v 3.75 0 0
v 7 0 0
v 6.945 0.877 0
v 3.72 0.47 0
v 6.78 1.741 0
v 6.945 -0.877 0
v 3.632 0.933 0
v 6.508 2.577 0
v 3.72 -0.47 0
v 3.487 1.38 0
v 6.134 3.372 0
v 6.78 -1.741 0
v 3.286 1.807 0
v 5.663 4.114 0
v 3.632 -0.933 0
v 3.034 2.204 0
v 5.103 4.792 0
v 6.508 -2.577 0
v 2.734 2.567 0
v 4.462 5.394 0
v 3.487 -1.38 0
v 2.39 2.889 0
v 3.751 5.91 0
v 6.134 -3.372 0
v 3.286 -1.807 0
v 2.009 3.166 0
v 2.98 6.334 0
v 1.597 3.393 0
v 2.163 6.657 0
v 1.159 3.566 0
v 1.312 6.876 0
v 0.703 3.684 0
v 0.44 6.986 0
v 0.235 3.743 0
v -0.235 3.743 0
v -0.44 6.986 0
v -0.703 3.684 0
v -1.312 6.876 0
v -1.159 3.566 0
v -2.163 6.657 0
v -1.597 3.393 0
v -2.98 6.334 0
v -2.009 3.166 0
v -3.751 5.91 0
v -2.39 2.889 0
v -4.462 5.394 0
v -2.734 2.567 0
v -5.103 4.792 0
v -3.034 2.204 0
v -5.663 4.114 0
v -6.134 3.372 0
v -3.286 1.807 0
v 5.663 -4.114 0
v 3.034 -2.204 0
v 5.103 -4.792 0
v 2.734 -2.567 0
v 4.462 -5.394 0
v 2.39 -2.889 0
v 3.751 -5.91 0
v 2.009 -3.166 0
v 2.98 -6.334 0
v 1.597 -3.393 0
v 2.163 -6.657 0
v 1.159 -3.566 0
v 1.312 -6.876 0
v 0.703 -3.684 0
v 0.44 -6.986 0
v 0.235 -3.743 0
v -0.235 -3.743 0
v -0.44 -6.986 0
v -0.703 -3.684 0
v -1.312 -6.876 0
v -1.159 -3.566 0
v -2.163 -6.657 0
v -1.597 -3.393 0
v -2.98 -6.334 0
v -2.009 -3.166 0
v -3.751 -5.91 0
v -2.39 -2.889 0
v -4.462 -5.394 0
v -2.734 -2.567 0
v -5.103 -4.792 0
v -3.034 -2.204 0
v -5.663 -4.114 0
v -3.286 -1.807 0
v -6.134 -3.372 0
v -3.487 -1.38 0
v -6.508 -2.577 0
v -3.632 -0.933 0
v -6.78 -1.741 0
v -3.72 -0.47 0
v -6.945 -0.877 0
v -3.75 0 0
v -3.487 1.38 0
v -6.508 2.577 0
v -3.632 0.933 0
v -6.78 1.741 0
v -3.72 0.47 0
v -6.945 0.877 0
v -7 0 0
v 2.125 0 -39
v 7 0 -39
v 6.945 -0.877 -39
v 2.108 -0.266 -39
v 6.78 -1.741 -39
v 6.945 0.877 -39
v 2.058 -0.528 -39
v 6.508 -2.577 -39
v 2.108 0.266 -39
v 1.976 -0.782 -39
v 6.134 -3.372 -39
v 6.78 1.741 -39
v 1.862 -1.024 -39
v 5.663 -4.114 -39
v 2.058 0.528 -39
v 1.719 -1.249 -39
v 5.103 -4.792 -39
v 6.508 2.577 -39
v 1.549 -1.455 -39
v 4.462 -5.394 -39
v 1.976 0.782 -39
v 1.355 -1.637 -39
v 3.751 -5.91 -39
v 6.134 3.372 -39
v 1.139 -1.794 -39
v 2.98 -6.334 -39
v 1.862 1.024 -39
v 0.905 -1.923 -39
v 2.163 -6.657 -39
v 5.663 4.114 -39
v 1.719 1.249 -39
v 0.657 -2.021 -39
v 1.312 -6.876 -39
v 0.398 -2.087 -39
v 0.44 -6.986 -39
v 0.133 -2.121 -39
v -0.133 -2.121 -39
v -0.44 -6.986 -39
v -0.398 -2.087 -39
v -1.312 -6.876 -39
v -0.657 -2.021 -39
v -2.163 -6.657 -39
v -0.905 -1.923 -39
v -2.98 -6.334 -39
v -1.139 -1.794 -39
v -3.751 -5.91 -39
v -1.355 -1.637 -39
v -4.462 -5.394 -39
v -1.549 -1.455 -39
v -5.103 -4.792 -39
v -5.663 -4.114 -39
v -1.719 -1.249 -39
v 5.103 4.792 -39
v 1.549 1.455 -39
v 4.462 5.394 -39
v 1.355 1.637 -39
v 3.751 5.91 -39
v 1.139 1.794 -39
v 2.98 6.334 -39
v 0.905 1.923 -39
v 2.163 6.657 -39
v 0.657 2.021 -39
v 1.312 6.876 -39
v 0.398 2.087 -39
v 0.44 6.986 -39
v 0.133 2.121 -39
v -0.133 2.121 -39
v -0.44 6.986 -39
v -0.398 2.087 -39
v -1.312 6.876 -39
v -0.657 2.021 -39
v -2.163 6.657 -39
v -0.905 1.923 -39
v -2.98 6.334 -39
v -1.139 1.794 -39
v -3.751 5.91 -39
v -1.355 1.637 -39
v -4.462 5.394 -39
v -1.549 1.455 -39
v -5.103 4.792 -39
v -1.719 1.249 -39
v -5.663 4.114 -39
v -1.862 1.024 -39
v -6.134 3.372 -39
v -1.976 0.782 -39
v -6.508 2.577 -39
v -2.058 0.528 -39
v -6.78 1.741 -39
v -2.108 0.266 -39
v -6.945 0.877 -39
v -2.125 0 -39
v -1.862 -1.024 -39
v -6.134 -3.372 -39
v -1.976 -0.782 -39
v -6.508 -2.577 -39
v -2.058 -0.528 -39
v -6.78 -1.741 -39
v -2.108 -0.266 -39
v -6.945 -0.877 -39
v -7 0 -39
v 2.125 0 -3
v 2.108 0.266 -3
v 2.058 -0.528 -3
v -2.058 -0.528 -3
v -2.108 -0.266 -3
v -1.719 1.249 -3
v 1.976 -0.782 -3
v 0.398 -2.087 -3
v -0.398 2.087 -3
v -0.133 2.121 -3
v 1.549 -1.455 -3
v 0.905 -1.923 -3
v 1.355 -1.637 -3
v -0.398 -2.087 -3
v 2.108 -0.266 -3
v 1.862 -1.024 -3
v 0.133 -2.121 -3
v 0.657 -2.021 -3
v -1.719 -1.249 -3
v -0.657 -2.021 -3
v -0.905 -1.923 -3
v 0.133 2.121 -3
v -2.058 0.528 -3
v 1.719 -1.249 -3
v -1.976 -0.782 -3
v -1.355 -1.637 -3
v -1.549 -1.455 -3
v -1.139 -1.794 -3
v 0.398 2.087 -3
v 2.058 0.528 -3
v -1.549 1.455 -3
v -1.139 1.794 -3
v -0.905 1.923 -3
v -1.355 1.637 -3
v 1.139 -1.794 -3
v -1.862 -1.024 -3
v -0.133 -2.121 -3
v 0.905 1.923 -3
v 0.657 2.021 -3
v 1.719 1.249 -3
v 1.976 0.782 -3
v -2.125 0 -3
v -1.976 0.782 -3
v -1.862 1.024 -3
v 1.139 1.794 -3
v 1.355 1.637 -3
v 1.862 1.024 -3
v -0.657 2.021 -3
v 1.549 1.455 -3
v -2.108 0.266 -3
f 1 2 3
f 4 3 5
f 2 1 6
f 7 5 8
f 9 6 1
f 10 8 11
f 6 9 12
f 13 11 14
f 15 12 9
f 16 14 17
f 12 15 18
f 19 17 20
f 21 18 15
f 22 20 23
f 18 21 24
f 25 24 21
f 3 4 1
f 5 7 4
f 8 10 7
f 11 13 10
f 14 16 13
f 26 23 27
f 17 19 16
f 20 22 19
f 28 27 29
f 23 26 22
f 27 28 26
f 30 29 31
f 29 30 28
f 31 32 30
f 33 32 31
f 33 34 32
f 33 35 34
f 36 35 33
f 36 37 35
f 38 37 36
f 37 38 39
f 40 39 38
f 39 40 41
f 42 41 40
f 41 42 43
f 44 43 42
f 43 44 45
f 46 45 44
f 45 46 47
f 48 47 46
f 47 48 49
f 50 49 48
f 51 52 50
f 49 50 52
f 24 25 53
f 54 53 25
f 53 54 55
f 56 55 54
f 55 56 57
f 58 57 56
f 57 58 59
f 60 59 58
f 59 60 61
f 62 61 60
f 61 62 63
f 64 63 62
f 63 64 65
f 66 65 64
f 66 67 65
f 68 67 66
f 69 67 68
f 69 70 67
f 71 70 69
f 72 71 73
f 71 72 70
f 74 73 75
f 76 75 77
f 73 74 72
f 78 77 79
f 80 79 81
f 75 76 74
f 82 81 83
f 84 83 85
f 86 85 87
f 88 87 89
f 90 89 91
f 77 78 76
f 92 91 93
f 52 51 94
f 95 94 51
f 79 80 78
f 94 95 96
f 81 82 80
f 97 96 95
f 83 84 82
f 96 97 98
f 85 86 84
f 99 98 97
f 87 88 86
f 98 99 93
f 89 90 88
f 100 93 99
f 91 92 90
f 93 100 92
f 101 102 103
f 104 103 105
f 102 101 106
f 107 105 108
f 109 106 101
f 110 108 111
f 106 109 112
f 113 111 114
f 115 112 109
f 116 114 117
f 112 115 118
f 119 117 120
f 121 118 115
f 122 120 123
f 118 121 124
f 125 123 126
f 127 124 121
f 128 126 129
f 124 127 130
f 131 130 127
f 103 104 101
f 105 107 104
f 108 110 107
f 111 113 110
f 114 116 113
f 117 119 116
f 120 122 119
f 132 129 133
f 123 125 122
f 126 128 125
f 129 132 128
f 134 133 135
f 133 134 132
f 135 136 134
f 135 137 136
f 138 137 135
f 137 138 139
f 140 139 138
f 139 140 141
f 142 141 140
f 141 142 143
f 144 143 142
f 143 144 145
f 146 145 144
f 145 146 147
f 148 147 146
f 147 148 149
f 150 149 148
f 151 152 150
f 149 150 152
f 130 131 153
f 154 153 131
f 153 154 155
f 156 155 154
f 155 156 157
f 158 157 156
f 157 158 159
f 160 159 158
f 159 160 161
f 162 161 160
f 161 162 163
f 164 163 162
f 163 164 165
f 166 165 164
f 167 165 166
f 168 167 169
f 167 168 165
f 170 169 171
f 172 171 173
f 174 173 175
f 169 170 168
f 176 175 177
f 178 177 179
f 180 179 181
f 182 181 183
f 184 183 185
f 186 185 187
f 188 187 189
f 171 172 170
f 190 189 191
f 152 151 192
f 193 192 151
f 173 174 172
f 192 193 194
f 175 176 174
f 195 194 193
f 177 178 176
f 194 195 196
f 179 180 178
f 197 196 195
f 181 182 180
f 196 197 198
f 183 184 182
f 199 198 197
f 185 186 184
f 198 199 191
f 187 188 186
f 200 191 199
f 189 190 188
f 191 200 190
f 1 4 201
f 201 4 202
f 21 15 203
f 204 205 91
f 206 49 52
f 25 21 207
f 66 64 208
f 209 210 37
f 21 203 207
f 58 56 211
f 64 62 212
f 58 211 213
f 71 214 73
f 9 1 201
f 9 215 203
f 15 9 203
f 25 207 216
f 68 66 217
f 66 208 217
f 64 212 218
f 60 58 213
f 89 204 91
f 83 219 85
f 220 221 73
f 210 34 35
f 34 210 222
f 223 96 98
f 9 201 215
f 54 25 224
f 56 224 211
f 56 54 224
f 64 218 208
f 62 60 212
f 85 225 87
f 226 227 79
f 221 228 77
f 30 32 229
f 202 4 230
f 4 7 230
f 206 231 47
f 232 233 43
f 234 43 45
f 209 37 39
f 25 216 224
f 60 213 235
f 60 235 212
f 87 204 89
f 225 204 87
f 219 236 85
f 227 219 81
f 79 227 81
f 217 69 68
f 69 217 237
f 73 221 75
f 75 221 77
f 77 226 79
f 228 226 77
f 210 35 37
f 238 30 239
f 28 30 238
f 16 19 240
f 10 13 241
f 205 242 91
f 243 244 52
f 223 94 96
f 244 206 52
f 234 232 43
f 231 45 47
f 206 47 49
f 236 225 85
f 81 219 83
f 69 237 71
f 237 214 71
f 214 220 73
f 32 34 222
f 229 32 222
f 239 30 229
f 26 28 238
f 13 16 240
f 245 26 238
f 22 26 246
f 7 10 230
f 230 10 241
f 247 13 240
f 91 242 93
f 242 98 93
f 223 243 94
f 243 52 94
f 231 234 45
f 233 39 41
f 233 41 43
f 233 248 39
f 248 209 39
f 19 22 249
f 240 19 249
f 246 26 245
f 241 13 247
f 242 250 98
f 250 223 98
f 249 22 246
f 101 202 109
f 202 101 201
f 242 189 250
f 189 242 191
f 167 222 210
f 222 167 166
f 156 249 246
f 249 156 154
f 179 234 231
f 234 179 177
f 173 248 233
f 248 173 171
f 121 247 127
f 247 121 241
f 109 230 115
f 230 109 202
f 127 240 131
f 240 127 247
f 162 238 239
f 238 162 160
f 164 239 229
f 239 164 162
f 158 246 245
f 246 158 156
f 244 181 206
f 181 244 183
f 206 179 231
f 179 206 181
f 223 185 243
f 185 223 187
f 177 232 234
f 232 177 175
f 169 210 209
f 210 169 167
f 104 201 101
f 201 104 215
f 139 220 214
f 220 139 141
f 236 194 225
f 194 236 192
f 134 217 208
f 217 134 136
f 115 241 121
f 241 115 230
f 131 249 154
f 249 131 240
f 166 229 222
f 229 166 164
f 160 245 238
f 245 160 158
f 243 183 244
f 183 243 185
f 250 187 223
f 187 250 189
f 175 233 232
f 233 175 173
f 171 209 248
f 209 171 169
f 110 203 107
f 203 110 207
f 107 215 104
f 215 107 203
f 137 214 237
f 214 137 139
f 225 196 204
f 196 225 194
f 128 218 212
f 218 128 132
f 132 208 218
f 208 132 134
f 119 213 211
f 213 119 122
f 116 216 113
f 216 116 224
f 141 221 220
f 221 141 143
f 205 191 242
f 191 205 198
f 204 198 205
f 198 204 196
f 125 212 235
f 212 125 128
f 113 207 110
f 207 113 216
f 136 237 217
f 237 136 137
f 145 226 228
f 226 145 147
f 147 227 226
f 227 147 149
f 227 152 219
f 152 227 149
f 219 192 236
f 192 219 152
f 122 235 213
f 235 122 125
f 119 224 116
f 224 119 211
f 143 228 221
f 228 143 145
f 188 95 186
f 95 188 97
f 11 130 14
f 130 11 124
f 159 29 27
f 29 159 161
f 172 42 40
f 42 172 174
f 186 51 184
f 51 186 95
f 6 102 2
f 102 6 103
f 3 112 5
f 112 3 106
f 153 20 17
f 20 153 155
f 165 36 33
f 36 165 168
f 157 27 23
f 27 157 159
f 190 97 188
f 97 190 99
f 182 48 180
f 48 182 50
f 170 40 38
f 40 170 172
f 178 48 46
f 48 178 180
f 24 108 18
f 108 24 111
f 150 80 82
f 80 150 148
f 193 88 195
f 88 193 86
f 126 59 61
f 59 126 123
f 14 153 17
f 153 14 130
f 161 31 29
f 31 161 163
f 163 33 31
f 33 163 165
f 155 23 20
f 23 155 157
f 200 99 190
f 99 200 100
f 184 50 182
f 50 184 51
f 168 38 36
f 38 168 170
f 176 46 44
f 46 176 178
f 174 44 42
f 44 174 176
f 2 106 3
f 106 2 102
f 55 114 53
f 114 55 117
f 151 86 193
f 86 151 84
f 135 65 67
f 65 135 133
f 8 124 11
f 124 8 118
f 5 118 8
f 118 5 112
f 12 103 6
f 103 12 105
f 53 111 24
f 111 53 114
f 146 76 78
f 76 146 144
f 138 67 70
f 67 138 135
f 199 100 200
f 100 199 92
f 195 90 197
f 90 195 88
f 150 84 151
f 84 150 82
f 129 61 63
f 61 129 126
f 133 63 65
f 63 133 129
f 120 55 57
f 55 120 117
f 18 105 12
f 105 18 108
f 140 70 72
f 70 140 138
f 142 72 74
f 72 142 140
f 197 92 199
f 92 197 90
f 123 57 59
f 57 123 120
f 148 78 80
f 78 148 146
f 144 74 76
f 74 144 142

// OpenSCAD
$fn = 50;


difference() {
	union() {
		translate(v = [0, 0, -39.0000000000]) {
			cylinder(h = 39, r = 7.0000000000);
		}
		cylinder(h = 0, r = 16.0000000000);
	}
	union() {
		translate(v = [0, 0, 0]) {
			rotate(a = [0, 0, 0]) {
				difference() {
					union() {
						#translate(v = [0, 0, -39.0000000000]) {
							cylinder(h = 39, r = 2.0000000000);
						}
						#translate(v = [0, 0, -3]) {
							cylinder(h = 3, r1 = 2.1250000000, r2 = 3.7500000000);
						}
						#translate(v = [0, 0, -39.0000000000]) {
							cylinder(h = 39, r = 2.1250000000);
						}
						#translate(v = [0, 0, -39.0000000000]) {
							cylinder(h = 39, r = 2.0000000000);
						}
					}
					union();
				}
			}
		}
	}
}
